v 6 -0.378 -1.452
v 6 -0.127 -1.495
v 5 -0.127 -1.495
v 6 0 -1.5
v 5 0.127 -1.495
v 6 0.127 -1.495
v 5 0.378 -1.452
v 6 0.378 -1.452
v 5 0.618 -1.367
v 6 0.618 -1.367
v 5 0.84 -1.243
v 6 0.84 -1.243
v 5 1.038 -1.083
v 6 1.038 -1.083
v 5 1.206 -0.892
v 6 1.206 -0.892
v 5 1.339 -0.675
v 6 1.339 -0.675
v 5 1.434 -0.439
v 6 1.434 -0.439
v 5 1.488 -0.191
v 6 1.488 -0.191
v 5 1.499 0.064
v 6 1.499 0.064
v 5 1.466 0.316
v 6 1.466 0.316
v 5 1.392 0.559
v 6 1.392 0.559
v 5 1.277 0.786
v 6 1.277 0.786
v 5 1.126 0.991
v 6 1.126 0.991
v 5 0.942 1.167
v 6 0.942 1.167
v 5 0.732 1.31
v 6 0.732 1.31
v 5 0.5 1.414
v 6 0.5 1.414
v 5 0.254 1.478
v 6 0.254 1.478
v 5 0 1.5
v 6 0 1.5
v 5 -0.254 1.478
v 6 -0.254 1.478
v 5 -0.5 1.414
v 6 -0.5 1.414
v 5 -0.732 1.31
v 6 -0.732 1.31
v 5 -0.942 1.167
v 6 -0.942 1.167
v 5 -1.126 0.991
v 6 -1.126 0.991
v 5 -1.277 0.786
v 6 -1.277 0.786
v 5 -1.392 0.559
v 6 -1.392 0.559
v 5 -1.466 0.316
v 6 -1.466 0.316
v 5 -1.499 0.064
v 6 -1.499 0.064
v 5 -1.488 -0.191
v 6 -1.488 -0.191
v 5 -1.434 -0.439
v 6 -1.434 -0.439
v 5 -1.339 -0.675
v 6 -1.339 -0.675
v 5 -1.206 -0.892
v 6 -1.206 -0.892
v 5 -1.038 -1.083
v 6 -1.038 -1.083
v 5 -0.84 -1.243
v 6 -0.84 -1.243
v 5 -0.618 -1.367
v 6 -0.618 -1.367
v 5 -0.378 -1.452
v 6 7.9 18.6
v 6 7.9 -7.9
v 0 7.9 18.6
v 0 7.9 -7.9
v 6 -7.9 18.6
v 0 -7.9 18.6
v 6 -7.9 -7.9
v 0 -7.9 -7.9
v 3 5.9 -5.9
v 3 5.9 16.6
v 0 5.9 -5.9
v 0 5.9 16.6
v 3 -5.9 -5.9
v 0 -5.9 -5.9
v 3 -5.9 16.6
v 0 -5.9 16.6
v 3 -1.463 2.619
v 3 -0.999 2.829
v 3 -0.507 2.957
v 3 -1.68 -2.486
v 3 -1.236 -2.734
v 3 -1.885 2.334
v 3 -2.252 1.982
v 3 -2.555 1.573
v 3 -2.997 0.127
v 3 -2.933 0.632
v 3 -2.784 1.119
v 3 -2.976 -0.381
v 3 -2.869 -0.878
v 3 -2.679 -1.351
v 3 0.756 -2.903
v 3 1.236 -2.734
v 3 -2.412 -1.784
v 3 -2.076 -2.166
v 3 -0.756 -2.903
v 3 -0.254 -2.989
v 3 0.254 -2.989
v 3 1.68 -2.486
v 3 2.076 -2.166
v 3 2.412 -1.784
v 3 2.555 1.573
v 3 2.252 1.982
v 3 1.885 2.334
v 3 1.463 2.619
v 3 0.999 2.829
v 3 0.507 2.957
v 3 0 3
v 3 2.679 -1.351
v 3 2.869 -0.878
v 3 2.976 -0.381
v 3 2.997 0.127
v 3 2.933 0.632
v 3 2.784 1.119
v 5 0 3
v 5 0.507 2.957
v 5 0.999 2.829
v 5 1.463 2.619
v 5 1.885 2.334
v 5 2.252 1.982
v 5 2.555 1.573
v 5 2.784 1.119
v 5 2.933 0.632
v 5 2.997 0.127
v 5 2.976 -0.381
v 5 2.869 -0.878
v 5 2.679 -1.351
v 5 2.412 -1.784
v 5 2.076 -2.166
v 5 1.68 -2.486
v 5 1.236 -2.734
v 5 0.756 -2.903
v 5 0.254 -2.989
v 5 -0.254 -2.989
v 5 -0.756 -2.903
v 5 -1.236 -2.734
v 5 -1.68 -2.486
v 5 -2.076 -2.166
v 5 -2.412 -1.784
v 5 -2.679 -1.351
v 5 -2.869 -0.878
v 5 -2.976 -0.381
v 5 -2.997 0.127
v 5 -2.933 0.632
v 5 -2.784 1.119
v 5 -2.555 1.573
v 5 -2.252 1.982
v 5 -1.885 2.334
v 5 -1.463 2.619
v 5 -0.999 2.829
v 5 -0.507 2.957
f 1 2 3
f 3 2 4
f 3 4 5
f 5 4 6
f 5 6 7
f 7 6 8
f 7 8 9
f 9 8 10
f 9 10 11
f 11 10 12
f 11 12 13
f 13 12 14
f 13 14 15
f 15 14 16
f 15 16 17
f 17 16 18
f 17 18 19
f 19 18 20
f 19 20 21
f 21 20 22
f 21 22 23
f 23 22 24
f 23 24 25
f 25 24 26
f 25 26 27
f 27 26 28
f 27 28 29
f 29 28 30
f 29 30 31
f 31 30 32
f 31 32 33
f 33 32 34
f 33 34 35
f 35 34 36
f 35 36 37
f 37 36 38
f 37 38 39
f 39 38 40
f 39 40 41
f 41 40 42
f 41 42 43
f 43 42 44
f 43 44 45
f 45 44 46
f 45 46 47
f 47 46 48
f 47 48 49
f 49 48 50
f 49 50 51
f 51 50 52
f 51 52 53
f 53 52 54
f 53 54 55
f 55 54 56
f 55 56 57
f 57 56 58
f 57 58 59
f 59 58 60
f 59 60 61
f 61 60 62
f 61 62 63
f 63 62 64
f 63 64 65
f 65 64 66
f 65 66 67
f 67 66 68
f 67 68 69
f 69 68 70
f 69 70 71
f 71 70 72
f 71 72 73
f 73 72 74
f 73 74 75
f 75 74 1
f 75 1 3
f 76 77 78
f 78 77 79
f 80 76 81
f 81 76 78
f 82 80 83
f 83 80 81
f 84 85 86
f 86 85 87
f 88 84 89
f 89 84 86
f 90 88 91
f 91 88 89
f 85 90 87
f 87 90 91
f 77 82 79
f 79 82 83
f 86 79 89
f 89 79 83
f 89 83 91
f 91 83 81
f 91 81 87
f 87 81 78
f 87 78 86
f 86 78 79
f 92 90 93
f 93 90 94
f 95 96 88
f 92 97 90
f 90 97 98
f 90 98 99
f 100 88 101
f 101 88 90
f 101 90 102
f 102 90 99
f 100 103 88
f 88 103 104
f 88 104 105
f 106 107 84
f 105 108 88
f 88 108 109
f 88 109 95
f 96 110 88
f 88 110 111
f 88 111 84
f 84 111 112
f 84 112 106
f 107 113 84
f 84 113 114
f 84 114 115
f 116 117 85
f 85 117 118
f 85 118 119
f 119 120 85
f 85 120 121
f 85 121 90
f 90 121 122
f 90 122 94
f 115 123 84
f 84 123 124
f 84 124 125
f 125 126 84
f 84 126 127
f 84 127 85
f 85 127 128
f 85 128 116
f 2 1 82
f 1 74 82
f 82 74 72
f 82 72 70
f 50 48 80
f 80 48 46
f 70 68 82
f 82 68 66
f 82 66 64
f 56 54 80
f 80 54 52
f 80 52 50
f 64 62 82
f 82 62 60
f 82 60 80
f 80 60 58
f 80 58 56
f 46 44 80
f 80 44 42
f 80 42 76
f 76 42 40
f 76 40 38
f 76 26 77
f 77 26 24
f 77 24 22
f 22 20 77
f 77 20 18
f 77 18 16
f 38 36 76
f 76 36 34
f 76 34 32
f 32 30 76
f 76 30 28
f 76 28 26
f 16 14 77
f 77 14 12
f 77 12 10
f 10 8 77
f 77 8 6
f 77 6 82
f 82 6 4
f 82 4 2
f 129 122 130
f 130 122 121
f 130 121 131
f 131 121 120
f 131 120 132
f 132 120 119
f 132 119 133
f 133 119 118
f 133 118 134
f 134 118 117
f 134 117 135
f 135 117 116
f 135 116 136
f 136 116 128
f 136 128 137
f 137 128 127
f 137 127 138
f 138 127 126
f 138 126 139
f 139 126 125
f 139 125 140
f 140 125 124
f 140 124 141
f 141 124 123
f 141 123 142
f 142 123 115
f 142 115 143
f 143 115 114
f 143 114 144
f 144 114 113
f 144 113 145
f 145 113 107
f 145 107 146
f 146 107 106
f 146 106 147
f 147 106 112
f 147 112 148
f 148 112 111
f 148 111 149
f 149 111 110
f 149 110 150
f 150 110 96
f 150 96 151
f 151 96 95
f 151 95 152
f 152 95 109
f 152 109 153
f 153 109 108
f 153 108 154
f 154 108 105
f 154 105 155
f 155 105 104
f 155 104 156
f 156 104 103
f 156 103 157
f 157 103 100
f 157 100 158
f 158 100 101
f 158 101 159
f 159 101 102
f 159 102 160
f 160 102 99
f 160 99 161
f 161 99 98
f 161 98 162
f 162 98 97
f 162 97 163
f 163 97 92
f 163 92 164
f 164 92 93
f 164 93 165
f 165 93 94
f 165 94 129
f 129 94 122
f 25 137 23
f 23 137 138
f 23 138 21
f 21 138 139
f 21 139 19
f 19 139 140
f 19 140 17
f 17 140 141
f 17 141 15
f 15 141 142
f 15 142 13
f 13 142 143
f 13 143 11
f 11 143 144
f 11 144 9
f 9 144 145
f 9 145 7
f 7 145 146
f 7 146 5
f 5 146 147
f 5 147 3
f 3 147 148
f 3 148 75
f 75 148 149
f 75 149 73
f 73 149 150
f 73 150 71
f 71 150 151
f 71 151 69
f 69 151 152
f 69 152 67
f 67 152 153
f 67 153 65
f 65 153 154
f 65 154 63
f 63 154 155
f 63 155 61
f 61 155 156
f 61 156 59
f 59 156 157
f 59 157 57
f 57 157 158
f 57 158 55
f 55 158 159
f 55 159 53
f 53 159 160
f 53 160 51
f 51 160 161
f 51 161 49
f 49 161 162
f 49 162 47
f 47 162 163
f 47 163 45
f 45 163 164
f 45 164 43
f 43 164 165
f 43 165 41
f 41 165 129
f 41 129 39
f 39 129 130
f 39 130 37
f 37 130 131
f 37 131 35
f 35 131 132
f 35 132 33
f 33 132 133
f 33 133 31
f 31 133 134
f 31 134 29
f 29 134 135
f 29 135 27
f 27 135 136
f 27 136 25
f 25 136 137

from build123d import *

# Parameters (mm, degrees)
SKETCH1_W           = 26.5
SKETCH1_H           = 15.8
SKETCH1_W_2         = 22.5
SKETCH1_H_2         = 11.8
BOSS_EXTRUDE1_DEPTH = 3
SKETCH2_W           = 26.5
SKETCH2_H           = 15.8
SKETCH2_R           = 1.5
BOSS_EXTRUDE2_DEPTH = 3
SKETCH3_R           = 3
CUT_EXTRUDE1_DEPTH  = 2


with BuildPart() as part:
    # Sketch1 → Boss-Extrude1 (new body)
    with BuildSketch(Plane(origin=(0, 0, 0), x_dir=(0, 0, -1), z_dir=(1, 0, 0))):
        with Locations((-5.35, 0)):
            Rectangle(SKETCH1_W, SKETCH1_H)
        with Locations((-5.35, 0)):
            Rectangle(SKETCH1_W_2, SKETCH1_H_2, mode=Mode.SUBTRACT)
    extrude(amount=BOSS_EXTRUDE1_DEPTH)

    # Sketch2 → Boss-Extrude2 (add)
    with BuildSketch(Plane(origin=(3, 0, 0), x_dir=(0, 0, -1), z_dir=(1, 0, 0))):
        with Locations((-5.35, 0)):
            Rectangle(SKETCH2_W, SKETCH2_H)
        Circle(SKETCH2_R, mode=Mode.SUBTRACT)
    extrude(amount=BOSS_EXTRUDE2_DEPTH)

    # Sketch3 → Cut-Extrude1 (cut)
    with BuildSketch(Plane.ZY.offset(-3)):
        Circle(SKETCH3_R)
    extrude(amount=-CUT_EXTRUDE1_DEPTH, mode=Mode.SUBTRACT)


solid = part.part
